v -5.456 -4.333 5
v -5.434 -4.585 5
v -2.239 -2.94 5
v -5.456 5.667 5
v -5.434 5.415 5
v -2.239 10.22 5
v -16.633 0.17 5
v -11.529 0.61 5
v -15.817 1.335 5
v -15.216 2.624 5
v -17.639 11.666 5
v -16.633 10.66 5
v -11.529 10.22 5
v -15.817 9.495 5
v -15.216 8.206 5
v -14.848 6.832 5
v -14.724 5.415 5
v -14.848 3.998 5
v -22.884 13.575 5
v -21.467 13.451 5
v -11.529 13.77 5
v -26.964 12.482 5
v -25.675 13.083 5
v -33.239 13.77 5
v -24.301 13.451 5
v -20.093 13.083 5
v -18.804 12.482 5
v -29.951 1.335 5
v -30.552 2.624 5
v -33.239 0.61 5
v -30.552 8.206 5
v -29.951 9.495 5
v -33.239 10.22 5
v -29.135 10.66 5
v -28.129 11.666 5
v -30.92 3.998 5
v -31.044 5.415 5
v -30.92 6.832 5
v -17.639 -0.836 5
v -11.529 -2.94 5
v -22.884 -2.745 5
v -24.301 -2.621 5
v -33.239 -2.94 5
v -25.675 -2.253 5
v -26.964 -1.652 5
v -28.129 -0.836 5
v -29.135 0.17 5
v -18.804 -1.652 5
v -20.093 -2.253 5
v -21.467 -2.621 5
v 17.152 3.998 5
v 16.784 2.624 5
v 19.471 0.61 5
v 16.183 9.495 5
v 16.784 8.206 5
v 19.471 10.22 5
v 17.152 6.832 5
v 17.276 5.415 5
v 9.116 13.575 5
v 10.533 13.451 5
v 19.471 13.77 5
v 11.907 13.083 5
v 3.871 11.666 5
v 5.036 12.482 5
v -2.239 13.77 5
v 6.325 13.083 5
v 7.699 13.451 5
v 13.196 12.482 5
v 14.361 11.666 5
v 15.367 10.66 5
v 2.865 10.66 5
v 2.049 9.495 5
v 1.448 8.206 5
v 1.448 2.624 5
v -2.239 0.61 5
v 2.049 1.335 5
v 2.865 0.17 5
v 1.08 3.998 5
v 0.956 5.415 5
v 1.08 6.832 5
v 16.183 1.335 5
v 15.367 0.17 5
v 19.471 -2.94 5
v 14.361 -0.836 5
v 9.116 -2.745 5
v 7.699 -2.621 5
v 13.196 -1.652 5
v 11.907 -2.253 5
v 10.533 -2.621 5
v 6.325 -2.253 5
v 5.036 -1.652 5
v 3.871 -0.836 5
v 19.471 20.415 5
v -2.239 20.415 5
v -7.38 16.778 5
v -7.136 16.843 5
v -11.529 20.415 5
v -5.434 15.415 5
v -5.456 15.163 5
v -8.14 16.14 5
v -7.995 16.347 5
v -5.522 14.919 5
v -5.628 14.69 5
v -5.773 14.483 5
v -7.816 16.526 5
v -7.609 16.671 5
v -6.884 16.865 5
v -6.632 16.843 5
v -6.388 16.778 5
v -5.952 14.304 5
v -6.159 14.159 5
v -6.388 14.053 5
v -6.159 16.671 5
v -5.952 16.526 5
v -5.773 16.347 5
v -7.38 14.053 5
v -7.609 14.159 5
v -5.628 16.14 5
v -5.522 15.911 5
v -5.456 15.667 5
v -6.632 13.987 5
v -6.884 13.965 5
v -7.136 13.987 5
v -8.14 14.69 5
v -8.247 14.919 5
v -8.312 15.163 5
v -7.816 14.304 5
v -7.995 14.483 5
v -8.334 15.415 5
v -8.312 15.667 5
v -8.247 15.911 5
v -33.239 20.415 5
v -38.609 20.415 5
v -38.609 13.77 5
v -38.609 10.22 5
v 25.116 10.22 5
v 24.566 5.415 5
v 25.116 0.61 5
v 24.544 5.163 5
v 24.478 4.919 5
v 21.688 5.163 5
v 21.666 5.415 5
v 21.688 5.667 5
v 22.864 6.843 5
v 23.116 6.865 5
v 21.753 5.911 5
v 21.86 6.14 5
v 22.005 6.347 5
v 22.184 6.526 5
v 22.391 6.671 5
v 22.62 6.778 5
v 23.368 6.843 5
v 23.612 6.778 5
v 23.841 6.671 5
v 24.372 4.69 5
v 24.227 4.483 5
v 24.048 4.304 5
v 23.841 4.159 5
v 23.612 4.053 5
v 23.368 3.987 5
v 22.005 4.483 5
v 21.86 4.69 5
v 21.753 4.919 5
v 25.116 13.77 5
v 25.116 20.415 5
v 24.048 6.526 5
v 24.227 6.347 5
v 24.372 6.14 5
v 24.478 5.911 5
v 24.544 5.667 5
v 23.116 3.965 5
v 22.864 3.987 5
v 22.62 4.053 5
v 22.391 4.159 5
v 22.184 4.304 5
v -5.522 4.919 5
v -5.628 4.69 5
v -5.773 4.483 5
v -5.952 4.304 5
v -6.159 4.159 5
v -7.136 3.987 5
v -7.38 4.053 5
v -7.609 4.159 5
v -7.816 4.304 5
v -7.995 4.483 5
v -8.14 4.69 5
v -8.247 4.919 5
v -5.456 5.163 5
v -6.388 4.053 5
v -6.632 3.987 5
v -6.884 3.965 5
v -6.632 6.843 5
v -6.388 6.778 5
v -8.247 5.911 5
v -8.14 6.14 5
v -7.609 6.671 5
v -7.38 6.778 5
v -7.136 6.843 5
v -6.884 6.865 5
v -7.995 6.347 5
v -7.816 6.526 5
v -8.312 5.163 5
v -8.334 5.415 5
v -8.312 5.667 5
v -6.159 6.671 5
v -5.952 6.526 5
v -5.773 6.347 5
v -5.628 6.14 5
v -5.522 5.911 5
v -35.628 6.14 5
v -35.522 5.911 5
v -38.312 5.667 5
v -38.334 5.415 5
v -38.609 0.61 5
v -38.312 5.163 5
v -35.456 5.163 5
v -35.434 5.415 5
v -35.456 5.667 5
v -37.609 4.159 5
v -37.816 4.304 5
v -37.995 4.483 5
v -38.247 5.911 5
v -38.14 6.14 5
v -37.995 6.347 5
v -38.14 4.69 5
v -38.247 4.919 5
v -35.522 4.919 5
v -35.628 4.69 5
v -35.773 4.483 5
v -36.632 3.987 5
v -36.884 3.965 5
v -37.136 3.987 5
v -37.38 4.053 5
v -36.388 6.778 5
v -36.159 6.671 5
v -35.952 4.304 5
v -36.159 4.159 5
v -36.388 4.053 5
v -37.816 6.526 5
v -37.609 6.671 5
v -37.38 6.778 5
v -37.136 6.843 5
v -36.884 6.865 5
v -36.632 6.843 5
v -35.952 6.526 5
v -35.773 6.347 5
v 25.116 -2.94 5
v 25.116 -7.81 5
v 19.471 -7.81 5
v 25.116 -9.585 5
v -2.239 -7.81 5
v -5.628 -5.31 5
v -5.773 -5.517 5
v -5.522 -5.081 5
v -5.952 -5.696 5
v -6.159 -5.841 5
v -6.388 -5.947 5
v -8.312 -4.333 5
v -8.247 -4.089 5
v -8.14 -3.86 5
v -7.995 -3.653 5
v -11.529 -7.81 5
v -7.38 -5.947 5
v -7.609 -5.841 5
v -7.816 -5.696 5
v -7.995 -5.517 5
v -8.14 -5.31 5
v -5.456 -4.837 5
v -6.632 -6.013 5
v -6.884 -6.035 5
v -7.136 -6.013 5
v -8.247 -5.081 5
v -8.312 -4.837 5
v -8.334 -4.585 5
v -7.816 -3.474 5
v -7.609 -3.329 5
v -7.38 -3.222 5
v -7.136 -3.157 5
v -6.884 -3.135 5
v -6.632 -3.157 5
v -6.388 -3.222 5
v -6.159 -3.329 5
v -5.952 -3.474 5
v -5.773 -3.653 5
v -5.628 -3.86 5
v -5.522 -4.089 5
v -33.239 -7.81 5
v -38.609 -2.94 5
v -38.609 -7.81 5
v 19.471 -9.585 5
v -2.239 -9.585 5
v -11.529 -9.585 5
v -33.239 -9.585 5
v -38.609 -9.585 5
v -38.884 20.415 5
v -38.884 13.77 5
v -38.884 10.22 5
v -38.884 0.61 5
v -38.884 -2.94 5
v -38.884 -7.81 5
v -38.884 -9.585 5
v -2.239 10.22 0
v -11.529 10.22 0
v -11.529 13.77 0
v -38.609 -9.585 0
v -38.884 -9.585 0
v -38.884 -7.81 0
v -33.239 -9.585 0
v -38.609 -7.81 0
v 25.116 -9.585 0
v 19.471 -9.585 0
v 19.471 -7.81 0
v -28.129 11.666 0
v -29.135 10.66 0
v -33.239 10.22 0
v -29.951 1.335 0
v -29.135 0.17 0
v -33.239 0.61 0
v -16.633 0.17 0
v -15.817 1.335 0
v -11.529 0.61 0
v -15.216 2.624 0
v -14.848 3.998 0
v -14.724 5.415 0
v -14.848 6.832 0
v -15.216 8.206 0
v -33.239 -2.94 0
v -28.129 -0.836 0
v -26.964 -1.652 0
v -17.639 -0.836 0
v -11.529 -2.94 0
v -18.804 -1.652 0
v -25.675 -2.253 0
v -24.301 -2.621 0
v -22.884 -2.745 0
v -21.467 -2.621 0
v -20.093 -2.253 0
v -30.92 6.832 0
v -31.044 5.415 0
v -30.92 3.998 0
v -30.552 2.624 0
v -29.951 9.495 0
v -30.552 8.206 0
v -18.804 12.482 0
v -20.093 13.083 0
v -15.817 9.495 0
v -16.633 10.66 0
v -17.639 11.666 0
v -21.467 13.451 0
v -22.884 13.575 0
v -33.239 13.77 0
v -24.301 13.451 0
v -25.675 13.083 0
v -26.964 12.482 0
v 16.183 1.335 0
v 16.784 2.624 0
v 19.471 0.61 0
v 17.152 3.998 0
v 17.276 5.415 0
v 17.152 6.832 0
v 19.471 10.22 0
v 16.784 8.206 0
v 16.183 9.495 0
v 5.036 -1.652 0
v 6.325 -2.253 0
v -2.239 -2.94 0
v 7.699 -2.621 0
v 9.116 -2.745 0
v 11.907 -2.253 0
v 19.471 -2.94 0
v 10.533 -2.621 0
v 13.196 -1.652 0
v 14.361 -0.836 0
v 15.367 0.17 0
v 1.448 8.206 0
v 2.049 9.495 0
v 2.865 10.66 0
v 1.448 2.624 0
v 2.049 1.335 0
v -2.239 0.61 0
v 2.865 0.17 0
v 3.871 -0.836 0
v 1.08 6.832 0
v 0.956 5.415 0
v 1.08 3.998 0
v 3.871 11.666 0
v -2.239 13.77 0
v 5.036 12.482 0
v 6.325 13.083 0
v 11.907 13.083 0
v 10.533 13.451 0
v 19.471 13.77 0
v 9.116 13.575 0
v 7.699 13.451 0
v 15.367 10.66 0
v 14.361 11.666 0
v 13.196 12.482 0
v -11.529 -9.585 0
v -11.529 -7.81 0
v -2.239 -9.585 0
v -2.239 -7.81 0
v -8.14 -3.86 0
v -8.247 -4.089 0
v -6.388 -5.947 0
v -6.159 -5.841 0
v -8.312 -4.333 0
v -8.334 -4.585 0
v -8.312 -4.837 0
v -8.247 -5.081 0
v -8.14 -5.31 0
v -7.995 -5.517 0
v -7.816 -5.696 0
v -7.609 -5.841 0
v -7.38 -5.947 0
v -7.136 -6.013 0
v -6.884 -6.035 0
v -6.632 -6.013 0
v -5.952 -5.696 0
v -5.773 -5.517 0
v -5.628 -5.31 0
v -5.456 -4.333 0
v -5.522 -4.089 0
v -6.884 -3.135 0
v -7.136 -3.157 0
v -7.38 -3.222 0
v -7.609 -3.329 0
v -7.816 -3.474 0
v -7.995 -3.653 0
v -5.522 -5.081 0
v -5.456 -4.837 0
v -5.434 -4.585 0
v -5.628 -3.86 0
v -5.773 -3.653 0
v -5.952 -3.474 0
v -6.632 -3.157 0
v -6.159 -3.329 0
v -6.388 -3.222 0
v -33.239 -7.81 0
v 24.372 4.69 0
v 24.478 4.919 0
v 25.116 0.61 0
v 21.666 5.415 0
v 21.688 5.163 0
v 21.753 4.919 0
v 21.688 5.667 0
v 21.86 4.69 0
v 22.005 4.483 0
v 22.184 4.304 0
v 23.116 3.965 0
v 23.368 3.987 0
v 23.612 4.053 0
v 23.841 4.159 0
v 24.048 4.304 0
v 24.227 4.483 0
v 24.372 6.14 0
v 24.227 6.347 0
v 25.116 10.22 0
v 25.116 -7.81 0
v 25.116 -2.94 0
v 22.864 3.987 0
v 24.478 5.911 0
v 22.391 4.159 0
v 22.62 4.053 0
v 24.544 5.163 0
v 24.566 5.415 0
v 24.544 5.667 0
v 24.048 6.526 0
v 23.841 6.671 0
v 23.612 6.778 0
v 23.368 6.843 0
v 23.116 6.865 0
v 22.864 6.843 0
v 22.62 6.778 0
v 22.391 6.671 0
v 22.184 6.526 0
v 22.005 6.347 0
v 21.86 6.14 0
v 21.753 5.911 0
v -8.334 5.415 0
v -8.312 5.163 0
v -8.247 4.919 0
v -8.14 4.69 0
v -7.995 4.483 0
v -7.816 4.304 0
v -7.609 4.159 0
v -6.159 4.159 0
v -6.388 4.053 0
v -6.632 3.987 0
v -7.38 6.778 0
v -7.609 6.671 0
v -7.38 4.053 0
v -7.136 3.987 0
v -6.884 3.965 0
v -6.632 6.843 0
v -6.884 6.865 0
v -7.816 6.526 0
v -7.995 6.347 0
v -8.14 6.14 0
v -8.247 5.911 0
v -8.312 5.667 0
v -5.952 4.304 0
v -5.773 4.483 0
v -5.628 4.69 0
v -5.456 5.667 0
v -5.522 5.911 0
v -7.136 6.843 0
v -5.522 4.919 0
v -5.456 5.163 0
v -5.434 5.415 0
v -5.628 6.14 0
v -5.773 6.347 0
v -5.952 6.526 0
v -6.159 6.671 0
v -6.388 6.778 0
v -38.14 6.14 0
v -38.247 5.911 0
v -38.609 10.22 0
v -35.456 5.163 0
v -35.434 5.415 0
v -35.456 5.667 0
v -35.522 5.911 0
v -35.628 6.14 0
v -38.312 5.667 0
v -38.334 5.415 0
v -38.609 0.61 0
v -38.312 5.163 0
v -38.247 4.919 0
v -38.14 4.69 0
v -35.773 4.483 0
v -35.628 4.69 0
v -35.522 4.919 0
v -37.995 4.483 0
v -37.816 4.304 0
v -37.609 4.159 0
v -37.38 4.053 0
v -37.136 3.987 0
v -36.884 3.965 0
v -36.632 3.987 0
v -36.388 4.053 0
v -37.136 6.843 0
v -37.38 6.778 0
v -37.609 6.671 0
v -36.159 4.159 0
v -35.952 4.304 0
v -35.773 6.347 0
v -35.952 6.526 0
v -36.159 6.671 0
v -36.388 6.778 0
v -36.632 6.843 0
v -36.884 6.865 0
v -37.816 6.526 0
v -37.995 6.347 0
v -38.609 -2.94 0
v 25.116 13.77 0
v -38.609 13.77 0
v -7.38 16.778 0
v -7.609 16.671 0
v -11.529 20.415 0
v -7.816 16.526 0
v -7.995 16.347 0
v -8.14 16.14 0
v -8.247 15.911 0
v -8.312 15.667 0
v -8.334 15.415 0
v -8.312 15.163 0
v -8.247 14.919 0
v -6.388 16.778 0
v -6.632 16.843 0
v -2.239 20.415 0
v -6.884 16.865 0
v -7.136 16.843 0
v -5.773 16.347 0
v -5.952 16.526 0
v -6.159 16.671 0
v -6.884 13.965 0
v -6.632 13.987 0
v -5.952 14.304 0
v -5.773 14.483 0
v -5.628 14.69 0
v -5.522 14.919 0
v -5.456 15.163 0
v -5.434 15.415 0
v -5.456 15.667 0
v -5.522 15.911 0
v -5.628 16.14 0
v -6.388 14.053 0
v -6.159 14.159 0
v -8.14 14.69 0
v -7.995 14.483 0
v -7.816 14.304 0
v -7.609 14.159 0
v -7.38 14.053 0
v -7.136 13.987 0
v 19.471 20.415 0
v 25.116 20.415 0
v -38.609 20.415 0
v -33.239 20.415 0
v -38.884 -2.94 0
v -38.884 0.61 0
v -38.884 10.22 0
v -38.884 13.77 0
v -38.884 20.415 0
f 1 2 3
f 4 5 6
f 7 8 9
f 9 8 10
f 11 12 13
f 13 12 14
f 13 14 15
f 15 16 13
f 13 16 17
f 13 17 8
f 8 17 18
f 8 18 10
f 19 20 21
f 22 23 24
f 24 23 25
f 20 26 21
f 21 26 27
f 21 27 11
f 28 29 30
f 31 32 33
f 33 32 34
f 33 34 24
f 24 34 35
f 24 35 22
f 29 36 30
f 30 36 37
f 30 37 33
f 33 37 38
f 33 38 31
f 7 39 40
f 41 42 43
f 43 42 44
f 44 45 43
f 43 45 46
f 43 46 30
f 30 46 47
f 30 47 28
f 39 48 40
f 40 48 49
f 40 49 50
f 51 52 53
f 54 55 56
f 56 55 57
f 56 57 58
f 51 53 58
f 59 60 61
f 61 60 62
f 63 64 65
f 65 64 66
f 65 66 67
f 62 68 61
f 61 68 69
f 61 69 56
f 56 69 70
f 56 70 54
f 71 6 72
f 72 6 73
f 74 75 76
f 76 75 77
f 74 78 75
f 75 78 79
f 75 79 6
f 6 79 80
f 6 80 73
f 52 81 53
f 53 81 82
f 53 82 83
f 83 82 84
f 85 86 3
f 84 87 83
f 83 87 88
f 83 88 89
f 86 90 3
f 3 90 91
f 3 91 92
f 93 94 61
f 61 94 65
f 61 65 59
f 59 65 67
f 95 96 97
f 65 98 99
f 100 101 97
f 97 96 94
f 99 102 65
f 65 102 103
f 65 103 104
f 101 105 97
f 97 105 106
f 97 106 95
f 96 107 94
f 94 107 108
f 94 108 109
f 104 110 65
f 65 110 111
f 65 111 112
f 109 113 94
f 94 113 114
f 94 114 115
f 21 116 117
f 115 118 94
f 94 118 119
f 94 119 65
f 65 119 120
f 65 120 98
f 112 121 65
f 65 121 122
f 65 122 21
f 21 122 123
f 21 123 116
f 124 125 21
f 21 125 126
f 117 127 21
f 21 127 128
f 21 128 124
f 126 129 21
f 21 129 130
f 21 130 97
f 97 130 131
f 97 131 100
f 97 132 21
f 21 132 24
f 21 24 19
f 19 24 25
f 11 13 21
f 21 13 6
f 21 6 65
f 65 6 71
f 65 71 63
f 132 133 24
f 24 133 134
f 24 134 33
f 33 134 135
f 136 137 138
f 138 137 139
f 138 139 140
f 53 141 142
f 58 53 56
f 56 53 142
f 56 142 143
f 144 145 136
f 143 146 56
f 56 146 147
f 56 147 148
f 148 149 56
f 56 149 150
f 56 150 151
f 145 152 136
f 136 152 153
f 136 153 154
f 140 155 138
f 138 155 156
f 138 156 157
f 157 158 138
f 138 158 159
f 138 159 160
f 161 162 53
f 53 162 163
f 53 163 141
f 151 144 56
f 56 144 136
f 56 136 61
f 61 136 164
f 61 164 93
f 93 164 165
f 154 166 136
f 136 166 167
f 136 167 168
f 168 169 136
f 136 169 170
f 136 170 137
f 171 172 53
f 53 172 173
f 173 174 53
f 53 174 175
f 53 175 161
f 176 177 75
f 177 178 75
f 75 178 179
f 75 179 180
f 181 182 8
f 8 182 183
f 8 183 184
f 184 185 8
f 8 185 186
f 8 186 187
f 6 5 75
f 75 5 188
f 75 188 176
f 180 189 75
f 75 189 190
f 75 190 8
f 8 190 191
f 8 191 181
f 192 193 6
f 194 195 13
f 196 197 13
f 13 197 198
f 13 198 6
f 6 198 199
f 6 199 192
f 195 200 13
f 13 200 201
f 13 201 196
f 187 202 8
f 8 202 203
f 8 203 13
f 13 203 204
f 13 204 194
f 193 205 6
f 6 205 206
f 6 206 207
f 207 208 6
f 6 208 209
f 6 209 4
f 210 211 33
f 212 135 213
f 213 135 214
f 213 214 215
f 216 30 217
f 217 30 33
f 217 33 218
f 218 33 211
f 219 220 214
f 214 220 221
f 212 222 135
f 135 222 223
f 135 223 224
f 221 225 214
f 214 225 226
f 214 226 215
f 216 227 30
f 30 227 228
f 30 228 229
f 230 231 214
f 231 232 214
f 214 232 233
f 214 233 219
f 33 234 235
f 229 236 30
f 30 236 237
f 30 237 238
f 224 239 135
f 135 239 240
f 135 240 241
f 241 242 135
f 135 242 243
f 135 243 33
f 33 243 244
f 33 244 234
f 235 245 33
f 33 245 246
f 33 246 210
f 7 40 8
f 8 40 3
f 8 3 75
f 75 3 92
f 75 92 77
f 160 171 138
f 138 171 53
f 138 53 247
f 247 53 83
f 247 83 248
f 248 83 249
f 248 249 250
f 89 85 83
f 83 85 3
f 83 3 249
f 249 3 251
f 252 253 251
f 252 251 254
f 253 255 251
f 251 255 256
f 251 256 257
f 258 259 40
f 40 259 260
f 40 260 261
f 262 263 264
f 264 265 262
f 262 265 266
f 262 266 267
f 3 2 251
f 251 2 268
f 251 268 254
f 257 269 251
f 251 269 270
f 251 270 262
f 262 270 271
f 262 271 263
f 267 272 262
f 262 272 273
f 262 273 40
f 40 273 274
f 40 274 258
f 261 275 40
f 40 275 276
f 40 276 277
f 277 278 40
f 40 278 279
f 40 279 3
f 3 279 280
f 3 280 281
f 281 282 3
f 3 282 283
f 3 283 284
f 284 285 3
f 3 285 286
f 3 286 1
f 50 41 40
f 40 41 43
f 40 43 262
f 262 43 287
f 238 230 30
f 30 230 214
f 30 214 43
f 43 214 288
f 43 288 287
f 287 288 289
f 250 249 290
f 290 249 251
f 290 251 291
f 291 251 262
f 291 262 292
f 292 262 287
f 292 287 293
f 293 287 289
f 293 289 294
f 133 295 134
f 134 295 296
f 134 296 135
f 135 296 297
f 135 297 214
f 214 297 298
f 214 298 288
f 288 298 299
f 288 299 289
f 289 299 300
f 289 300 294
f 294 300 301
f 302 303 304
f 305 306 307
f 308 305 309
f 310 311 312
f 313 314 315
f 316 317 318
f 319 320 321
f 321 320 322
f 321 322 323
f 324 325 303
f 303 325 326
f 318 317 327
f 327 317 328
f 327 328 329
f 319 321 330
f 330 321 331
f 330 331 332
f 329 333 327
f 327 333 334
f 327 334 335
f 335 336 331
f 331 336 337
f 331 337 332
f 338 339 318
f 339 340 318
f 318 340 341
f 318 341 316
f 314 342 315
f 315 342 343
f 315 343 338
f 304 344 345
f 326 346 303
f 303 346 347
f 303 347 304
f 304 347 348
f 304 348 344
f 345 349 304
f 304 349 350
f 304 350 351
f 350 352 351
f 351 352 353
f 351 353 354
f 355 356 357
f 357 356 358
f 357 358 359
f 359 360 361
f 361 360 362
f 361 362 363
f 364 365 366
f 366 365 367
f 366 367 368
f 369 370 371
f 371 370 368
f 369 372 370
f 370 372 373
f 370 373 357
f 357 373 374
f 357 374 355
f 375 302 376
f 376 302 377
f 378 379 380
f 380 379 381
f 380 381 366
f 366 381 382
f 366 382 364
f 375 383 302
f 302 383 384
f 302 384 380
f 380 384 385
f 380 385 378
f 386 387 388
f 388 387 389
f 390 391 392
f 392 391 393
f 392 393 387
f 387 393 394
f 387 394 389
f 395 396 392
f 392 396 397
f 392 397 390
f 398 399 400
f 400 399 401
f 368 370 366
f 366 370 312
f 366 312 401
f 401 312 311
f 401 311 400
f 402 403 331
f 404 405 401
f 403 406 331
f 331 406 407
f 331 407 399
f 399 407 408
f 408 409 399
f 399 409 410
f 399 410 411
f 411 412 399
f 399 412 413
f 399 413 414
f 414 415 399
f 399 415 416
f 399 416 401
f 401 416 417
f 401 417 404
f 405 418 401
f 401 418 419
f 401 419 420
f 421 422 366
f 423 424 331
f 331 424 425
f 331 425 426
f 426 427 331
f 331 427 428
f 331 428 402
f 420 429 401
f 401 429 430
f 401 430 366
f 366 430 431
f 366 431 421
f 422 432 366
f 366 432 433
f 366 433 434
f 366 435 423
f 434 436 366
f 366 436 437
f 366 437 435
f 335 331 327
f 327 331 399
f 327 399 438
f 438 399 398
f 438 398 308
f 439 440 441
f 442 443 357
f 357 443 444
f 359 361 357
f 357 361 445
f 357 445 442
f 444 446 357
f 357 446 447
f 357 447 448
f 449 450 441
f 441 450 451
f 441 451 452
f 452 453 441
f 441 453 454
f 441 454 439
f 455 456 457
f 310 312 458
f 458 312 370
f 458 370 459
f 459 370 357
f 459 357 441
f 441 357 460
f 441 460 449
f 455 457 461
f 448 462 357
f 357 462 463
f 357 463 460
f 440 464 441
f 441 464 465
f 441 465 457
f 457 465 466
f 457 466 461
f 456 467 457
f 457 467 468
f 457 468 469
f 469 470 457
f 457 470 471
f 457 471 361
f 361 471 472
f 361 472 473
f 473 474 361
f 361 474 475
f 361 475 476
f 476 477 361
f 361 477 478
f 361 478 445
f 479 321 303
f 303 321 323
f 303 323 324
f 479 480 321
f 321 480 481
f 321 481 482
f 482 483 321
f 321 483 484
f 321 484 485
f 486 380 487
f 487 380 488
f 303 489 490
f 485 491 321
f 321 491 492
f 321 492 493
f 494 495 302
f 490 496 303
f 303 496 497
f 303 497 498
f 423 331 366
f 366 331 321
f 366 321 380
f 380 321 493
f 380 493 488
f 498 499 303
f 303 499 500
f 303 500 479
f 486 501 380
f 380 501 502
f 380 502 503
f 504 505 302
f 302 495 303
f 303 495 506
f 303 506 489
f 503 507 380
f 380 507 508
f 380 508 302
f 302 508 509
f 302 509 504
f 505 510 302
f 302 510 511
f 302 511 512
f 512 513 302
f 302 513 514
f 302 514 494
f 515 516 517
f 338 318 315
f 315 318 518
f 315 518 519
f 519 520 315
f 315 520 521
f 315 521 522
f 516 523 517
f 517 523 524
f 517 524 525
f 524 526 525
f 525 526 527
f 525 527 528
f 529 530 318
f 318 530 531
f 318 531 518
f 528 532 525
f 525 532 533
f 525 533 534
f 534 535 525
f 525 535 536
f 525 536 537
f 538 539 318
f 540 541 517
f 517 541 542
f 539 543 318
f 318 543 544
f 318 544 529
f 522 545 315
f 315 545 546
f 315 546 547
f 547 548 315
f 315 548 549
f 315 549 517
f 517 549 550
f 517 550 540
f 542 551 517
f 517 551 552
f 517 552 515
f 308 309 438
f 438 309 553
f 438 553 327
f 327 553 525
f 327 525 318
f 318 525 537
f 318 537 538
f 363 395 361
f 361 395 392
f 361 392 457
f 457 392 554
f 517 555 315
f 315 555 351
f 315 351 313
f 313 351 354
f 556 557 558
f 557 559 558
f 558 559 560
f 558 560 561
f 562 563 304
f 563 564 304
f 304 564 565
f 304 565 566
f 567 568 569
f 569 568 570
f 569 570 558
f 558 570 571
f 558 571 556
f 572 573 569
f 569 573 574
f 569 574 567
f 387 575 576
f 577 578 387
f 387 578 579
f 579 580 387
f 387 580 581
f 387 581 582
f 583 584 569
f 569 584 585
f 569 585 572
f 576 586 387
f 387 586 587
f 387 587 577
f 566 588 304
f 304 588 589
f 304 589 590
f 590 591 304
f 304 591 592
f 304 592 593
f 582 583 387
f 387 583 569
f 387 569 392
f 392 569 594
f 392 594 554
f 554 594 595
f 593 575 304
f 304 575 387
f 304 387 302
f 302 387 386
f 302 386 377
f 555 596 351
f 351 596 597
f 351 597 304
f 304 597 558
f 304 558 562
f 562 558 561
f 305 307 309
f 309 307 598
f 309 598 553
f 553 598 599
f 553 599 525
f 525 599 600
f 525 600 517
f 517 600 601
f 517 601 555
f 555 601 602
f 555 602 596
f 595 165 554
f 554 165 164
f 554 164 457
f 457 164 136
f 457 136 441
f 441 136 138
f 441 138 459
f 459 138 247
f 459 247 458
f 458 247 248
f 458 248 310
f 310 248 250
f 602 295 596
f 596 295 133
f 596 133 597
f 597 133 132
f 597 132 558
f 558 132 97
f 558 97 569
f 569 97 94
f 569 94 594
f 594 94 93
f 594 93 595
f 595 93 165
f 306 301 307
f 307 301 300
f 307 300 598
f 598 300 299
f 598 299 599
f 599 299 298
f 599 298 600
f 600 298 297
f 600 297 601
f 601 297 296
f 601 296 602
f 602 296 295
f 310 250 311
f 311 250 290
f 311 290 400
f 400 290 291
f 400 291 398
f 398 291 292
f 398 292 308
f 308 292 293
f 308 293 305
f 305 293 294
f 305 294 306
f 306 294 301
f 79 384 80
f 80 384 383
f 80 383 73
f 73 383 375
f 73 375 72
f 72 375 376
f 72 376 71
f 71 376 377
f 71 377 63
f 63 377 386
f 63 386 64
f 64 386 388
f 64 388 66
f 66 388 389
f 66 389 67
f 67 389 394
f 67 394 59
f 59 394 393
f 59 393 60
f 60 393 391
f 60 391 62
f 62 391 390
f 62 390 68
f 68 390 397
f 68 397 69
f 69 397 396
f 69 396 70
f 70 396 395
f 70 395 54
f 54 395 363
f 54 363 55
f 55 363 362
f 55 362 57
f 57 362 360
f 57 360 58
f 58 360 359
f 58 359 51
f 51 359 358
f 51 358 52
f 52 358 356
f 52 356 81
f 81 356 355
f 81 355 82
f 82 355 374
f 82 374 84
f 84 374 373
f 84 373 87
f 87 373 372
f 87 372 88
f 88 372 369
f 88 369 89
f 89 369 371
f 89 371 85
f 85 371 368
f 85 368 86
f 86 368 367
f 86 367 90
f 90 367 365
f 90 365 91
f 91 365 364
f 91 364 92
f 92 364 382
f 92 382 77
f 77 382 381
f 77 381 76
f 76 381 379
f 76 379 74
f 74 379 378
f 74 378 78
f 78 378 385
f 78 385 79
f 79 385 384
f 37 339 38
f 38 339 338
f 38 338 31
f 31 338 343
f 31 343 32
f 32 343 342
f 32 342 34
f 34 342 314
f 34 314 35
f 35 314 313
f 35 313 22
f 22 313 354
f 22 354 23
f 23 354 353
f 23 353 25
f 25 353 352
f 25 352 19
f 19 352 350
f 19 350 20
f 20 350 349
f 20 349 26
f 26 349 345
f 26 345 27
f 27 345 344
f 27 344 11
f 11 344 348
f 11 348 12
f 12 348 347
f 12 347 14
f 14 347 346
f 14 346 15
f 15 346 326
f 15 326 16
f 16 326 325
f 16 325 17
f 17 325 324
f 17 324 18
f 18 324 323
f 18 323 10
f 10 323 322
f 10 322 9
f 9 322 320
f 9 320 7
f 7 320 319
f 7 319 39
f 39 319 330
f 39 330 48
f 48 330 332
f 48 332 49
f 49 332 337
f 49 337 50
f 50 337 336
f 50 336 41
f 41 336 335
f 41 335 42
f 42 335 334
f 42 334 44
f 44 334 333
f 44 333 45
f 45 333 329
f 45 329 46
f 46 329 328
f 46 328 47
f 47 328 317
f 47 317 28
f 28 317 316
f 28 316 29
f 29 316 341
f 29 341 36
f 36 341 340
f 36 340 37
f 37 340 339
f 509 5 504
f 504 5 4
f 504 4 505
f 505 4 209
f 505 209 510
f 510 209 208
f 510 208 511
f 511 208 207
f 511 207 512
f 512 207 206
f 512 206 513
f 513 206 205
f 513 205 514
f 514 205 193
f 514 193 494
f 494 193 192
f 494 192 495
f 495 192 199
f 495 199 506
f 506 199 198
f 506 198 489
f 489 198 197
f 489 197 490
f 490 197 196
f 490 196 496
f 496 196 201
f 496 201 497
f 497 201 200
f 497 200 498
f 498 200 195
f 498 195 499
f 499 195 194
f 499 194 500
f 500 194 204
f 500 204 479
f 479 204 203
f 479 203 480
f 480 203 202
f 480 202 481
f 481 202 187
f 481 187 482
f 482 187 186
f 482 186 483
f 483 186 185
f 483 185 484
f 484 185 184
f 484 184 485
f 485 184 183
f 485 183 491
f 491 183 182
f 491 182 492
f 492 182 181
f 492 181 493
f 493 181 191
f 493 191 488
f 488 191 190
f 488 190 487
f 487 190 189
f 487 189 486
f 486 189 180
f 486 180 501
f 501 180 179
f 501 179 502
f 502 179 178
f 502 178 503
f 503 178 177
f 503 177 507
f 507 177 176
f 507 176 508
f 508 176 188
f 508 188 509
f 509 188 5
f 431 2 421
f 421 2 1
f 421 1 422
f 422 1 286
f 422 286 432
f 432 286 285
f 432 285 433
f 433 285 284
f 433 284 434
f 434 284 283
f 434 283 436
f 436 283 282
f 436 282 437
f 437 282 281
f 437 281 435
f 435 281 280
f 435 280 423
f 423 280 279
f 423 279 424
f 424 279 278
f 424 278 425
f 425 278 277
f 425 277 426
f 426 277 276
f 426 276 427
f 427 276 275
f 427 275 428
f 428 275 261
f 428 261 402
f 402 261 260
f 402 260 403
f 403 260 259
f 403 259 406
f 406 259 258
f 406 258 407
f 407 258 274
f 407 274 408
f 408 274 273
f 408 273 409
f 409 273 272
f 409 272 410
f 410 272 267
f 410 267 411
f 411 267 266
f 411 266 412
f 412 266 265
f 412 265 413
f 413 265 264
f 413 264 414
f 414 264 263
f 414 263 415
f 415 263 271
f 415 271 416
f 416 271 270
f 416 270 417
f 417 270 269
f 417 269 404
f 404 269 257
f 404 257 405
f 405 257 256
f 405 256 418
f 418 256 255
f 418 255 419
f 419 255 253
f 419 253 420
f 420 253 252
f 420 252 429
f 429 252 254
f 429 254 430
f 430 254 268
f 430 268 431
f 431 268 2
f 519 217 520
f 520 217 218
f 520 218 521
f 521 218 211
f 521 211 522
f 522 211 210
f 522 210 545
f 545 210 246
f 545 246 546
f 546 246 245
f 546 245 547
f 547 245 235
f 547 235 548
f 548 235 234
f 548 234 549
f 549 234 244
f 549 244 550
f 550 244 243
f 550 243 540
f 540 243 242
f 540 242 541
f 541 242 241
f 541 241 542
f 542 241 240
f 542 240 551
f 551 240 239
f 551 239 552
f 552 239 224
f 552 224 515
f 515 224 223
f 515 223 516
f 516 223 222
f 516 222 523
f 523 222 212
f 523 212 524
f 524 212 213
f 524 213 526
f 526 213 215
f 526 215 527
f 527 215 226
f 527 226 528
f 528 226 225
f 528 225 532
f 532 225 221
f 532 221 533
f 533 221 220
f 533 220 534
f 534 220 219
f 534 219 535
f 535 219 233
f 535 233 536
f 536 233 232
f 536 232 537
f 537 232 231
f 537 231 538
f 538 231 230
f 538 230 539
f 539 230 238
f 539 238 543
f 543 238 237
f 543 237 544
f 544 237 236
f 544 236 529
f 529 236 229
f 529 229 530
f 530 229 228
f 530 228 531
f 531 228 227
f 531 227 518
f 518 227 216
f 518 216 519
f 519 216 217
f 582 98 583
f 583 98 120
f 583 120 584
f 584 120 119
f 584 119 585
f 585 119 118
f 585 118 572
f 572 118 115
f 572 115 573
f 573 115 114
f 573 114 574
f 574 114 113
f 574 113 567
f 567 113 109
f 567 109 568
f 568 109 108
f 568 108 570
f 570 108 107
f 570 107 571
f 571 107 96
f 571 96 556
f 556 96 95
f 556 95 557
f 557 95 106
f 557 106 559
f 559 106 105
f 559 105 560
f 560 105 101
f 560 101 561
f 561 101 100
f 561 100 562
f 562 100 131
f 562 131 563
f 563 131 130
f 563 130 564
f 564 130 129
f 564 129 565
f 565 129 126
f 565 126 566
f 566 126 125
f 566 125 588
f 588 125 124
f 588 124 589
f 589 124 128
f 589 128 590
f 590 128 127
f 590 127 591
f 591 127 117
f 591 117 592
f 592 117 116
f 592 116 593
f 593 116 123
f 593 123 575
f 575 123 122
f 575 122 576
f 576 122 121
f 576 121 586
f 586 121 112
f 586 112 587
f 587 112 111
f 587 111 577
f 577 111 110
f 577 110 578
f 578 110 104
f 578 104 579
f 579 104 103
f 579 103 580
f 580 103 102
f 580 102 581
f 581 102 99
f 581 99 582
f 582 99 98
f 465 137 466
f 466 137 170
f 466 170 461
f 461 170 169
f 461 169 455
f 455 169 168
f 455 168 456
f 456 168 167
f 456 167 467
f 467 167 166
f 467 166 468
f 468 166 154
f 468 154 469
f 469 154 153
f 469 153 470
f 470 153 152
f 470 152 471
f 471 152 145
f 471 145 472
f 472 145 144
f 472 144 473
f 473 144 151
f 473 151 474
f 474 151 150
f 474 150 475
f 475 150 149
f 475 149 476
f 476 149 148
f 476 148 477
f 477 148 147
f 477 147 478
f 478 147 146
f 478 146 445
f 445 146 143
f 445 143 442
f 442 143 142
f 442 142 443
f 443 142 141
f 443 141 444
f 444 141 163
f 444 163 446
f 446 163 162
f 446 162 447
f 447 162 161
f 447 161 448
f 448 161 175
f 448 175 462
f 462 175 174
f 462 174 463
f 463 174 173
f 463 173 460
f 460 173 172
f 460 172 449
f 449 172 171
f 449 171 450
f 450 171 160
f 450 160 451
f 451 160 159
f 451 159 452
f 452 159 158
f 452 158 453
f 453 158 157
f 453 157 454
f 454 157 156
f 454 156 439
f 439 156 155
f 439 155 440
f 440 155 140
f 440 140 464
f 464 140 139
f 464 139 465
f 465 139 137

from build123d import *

# Parameters (mm, degrees)
SKETCH_1_W          = 64
SKETCH_1_H          = 30
SKETCH_1_R          = 8.16
EXTRUDE_1_DEPTH     = 5
SKETCH_2_R          = 1.45
CUT_EXTRUDE_1_DEPTH = 10


with BuildPart() as part:
    # 草图1 → 凸台-拉伸1 (new body)
    with BuildSketch(Plane.XY):
        with Locations((-6.884129186, 5.415137148)):
            Rectangle(SKETCH_1_W, SKETCH_1_H)
        with Locations((9.115870814, 5.415137148)):
            Circle(SKETCH_1_R, mode=Mode.SUBTRACT)
        with Locations((-22.884129186, 5.415137148)):
            Circle(SKETCH_1_R, mode=Mode.SUBTRACT)
    extrude(amount=EXTRUDE_1_DEPTH)

    # 草图2 → 切除-拉伸1 (cut)
    with BuildSketch(Plane.XY.offset(5)):
        with Locations((-6.884129186, 5.415137148)):
            Circle(SKETCH_2_R)
        with Locations((23.115870814, 5.415137148)):
            Circle(SKETCH_2_R)
        with Locations((-36.884129186, 5.415137148)):
            Circle(SKETCH_2_R)
        with Locations((-6.884129186, 15.415137148)):
            Circle(SKETCH_2_R)
        with Locations((-6.884129186, -4.584862852)):
            Circle(SKETCH_2_R)
    extrude(amount=-CUT_EXTRUDE_1_DEPTH, mode=Mode.SUBTRACT)


solid = part.part
